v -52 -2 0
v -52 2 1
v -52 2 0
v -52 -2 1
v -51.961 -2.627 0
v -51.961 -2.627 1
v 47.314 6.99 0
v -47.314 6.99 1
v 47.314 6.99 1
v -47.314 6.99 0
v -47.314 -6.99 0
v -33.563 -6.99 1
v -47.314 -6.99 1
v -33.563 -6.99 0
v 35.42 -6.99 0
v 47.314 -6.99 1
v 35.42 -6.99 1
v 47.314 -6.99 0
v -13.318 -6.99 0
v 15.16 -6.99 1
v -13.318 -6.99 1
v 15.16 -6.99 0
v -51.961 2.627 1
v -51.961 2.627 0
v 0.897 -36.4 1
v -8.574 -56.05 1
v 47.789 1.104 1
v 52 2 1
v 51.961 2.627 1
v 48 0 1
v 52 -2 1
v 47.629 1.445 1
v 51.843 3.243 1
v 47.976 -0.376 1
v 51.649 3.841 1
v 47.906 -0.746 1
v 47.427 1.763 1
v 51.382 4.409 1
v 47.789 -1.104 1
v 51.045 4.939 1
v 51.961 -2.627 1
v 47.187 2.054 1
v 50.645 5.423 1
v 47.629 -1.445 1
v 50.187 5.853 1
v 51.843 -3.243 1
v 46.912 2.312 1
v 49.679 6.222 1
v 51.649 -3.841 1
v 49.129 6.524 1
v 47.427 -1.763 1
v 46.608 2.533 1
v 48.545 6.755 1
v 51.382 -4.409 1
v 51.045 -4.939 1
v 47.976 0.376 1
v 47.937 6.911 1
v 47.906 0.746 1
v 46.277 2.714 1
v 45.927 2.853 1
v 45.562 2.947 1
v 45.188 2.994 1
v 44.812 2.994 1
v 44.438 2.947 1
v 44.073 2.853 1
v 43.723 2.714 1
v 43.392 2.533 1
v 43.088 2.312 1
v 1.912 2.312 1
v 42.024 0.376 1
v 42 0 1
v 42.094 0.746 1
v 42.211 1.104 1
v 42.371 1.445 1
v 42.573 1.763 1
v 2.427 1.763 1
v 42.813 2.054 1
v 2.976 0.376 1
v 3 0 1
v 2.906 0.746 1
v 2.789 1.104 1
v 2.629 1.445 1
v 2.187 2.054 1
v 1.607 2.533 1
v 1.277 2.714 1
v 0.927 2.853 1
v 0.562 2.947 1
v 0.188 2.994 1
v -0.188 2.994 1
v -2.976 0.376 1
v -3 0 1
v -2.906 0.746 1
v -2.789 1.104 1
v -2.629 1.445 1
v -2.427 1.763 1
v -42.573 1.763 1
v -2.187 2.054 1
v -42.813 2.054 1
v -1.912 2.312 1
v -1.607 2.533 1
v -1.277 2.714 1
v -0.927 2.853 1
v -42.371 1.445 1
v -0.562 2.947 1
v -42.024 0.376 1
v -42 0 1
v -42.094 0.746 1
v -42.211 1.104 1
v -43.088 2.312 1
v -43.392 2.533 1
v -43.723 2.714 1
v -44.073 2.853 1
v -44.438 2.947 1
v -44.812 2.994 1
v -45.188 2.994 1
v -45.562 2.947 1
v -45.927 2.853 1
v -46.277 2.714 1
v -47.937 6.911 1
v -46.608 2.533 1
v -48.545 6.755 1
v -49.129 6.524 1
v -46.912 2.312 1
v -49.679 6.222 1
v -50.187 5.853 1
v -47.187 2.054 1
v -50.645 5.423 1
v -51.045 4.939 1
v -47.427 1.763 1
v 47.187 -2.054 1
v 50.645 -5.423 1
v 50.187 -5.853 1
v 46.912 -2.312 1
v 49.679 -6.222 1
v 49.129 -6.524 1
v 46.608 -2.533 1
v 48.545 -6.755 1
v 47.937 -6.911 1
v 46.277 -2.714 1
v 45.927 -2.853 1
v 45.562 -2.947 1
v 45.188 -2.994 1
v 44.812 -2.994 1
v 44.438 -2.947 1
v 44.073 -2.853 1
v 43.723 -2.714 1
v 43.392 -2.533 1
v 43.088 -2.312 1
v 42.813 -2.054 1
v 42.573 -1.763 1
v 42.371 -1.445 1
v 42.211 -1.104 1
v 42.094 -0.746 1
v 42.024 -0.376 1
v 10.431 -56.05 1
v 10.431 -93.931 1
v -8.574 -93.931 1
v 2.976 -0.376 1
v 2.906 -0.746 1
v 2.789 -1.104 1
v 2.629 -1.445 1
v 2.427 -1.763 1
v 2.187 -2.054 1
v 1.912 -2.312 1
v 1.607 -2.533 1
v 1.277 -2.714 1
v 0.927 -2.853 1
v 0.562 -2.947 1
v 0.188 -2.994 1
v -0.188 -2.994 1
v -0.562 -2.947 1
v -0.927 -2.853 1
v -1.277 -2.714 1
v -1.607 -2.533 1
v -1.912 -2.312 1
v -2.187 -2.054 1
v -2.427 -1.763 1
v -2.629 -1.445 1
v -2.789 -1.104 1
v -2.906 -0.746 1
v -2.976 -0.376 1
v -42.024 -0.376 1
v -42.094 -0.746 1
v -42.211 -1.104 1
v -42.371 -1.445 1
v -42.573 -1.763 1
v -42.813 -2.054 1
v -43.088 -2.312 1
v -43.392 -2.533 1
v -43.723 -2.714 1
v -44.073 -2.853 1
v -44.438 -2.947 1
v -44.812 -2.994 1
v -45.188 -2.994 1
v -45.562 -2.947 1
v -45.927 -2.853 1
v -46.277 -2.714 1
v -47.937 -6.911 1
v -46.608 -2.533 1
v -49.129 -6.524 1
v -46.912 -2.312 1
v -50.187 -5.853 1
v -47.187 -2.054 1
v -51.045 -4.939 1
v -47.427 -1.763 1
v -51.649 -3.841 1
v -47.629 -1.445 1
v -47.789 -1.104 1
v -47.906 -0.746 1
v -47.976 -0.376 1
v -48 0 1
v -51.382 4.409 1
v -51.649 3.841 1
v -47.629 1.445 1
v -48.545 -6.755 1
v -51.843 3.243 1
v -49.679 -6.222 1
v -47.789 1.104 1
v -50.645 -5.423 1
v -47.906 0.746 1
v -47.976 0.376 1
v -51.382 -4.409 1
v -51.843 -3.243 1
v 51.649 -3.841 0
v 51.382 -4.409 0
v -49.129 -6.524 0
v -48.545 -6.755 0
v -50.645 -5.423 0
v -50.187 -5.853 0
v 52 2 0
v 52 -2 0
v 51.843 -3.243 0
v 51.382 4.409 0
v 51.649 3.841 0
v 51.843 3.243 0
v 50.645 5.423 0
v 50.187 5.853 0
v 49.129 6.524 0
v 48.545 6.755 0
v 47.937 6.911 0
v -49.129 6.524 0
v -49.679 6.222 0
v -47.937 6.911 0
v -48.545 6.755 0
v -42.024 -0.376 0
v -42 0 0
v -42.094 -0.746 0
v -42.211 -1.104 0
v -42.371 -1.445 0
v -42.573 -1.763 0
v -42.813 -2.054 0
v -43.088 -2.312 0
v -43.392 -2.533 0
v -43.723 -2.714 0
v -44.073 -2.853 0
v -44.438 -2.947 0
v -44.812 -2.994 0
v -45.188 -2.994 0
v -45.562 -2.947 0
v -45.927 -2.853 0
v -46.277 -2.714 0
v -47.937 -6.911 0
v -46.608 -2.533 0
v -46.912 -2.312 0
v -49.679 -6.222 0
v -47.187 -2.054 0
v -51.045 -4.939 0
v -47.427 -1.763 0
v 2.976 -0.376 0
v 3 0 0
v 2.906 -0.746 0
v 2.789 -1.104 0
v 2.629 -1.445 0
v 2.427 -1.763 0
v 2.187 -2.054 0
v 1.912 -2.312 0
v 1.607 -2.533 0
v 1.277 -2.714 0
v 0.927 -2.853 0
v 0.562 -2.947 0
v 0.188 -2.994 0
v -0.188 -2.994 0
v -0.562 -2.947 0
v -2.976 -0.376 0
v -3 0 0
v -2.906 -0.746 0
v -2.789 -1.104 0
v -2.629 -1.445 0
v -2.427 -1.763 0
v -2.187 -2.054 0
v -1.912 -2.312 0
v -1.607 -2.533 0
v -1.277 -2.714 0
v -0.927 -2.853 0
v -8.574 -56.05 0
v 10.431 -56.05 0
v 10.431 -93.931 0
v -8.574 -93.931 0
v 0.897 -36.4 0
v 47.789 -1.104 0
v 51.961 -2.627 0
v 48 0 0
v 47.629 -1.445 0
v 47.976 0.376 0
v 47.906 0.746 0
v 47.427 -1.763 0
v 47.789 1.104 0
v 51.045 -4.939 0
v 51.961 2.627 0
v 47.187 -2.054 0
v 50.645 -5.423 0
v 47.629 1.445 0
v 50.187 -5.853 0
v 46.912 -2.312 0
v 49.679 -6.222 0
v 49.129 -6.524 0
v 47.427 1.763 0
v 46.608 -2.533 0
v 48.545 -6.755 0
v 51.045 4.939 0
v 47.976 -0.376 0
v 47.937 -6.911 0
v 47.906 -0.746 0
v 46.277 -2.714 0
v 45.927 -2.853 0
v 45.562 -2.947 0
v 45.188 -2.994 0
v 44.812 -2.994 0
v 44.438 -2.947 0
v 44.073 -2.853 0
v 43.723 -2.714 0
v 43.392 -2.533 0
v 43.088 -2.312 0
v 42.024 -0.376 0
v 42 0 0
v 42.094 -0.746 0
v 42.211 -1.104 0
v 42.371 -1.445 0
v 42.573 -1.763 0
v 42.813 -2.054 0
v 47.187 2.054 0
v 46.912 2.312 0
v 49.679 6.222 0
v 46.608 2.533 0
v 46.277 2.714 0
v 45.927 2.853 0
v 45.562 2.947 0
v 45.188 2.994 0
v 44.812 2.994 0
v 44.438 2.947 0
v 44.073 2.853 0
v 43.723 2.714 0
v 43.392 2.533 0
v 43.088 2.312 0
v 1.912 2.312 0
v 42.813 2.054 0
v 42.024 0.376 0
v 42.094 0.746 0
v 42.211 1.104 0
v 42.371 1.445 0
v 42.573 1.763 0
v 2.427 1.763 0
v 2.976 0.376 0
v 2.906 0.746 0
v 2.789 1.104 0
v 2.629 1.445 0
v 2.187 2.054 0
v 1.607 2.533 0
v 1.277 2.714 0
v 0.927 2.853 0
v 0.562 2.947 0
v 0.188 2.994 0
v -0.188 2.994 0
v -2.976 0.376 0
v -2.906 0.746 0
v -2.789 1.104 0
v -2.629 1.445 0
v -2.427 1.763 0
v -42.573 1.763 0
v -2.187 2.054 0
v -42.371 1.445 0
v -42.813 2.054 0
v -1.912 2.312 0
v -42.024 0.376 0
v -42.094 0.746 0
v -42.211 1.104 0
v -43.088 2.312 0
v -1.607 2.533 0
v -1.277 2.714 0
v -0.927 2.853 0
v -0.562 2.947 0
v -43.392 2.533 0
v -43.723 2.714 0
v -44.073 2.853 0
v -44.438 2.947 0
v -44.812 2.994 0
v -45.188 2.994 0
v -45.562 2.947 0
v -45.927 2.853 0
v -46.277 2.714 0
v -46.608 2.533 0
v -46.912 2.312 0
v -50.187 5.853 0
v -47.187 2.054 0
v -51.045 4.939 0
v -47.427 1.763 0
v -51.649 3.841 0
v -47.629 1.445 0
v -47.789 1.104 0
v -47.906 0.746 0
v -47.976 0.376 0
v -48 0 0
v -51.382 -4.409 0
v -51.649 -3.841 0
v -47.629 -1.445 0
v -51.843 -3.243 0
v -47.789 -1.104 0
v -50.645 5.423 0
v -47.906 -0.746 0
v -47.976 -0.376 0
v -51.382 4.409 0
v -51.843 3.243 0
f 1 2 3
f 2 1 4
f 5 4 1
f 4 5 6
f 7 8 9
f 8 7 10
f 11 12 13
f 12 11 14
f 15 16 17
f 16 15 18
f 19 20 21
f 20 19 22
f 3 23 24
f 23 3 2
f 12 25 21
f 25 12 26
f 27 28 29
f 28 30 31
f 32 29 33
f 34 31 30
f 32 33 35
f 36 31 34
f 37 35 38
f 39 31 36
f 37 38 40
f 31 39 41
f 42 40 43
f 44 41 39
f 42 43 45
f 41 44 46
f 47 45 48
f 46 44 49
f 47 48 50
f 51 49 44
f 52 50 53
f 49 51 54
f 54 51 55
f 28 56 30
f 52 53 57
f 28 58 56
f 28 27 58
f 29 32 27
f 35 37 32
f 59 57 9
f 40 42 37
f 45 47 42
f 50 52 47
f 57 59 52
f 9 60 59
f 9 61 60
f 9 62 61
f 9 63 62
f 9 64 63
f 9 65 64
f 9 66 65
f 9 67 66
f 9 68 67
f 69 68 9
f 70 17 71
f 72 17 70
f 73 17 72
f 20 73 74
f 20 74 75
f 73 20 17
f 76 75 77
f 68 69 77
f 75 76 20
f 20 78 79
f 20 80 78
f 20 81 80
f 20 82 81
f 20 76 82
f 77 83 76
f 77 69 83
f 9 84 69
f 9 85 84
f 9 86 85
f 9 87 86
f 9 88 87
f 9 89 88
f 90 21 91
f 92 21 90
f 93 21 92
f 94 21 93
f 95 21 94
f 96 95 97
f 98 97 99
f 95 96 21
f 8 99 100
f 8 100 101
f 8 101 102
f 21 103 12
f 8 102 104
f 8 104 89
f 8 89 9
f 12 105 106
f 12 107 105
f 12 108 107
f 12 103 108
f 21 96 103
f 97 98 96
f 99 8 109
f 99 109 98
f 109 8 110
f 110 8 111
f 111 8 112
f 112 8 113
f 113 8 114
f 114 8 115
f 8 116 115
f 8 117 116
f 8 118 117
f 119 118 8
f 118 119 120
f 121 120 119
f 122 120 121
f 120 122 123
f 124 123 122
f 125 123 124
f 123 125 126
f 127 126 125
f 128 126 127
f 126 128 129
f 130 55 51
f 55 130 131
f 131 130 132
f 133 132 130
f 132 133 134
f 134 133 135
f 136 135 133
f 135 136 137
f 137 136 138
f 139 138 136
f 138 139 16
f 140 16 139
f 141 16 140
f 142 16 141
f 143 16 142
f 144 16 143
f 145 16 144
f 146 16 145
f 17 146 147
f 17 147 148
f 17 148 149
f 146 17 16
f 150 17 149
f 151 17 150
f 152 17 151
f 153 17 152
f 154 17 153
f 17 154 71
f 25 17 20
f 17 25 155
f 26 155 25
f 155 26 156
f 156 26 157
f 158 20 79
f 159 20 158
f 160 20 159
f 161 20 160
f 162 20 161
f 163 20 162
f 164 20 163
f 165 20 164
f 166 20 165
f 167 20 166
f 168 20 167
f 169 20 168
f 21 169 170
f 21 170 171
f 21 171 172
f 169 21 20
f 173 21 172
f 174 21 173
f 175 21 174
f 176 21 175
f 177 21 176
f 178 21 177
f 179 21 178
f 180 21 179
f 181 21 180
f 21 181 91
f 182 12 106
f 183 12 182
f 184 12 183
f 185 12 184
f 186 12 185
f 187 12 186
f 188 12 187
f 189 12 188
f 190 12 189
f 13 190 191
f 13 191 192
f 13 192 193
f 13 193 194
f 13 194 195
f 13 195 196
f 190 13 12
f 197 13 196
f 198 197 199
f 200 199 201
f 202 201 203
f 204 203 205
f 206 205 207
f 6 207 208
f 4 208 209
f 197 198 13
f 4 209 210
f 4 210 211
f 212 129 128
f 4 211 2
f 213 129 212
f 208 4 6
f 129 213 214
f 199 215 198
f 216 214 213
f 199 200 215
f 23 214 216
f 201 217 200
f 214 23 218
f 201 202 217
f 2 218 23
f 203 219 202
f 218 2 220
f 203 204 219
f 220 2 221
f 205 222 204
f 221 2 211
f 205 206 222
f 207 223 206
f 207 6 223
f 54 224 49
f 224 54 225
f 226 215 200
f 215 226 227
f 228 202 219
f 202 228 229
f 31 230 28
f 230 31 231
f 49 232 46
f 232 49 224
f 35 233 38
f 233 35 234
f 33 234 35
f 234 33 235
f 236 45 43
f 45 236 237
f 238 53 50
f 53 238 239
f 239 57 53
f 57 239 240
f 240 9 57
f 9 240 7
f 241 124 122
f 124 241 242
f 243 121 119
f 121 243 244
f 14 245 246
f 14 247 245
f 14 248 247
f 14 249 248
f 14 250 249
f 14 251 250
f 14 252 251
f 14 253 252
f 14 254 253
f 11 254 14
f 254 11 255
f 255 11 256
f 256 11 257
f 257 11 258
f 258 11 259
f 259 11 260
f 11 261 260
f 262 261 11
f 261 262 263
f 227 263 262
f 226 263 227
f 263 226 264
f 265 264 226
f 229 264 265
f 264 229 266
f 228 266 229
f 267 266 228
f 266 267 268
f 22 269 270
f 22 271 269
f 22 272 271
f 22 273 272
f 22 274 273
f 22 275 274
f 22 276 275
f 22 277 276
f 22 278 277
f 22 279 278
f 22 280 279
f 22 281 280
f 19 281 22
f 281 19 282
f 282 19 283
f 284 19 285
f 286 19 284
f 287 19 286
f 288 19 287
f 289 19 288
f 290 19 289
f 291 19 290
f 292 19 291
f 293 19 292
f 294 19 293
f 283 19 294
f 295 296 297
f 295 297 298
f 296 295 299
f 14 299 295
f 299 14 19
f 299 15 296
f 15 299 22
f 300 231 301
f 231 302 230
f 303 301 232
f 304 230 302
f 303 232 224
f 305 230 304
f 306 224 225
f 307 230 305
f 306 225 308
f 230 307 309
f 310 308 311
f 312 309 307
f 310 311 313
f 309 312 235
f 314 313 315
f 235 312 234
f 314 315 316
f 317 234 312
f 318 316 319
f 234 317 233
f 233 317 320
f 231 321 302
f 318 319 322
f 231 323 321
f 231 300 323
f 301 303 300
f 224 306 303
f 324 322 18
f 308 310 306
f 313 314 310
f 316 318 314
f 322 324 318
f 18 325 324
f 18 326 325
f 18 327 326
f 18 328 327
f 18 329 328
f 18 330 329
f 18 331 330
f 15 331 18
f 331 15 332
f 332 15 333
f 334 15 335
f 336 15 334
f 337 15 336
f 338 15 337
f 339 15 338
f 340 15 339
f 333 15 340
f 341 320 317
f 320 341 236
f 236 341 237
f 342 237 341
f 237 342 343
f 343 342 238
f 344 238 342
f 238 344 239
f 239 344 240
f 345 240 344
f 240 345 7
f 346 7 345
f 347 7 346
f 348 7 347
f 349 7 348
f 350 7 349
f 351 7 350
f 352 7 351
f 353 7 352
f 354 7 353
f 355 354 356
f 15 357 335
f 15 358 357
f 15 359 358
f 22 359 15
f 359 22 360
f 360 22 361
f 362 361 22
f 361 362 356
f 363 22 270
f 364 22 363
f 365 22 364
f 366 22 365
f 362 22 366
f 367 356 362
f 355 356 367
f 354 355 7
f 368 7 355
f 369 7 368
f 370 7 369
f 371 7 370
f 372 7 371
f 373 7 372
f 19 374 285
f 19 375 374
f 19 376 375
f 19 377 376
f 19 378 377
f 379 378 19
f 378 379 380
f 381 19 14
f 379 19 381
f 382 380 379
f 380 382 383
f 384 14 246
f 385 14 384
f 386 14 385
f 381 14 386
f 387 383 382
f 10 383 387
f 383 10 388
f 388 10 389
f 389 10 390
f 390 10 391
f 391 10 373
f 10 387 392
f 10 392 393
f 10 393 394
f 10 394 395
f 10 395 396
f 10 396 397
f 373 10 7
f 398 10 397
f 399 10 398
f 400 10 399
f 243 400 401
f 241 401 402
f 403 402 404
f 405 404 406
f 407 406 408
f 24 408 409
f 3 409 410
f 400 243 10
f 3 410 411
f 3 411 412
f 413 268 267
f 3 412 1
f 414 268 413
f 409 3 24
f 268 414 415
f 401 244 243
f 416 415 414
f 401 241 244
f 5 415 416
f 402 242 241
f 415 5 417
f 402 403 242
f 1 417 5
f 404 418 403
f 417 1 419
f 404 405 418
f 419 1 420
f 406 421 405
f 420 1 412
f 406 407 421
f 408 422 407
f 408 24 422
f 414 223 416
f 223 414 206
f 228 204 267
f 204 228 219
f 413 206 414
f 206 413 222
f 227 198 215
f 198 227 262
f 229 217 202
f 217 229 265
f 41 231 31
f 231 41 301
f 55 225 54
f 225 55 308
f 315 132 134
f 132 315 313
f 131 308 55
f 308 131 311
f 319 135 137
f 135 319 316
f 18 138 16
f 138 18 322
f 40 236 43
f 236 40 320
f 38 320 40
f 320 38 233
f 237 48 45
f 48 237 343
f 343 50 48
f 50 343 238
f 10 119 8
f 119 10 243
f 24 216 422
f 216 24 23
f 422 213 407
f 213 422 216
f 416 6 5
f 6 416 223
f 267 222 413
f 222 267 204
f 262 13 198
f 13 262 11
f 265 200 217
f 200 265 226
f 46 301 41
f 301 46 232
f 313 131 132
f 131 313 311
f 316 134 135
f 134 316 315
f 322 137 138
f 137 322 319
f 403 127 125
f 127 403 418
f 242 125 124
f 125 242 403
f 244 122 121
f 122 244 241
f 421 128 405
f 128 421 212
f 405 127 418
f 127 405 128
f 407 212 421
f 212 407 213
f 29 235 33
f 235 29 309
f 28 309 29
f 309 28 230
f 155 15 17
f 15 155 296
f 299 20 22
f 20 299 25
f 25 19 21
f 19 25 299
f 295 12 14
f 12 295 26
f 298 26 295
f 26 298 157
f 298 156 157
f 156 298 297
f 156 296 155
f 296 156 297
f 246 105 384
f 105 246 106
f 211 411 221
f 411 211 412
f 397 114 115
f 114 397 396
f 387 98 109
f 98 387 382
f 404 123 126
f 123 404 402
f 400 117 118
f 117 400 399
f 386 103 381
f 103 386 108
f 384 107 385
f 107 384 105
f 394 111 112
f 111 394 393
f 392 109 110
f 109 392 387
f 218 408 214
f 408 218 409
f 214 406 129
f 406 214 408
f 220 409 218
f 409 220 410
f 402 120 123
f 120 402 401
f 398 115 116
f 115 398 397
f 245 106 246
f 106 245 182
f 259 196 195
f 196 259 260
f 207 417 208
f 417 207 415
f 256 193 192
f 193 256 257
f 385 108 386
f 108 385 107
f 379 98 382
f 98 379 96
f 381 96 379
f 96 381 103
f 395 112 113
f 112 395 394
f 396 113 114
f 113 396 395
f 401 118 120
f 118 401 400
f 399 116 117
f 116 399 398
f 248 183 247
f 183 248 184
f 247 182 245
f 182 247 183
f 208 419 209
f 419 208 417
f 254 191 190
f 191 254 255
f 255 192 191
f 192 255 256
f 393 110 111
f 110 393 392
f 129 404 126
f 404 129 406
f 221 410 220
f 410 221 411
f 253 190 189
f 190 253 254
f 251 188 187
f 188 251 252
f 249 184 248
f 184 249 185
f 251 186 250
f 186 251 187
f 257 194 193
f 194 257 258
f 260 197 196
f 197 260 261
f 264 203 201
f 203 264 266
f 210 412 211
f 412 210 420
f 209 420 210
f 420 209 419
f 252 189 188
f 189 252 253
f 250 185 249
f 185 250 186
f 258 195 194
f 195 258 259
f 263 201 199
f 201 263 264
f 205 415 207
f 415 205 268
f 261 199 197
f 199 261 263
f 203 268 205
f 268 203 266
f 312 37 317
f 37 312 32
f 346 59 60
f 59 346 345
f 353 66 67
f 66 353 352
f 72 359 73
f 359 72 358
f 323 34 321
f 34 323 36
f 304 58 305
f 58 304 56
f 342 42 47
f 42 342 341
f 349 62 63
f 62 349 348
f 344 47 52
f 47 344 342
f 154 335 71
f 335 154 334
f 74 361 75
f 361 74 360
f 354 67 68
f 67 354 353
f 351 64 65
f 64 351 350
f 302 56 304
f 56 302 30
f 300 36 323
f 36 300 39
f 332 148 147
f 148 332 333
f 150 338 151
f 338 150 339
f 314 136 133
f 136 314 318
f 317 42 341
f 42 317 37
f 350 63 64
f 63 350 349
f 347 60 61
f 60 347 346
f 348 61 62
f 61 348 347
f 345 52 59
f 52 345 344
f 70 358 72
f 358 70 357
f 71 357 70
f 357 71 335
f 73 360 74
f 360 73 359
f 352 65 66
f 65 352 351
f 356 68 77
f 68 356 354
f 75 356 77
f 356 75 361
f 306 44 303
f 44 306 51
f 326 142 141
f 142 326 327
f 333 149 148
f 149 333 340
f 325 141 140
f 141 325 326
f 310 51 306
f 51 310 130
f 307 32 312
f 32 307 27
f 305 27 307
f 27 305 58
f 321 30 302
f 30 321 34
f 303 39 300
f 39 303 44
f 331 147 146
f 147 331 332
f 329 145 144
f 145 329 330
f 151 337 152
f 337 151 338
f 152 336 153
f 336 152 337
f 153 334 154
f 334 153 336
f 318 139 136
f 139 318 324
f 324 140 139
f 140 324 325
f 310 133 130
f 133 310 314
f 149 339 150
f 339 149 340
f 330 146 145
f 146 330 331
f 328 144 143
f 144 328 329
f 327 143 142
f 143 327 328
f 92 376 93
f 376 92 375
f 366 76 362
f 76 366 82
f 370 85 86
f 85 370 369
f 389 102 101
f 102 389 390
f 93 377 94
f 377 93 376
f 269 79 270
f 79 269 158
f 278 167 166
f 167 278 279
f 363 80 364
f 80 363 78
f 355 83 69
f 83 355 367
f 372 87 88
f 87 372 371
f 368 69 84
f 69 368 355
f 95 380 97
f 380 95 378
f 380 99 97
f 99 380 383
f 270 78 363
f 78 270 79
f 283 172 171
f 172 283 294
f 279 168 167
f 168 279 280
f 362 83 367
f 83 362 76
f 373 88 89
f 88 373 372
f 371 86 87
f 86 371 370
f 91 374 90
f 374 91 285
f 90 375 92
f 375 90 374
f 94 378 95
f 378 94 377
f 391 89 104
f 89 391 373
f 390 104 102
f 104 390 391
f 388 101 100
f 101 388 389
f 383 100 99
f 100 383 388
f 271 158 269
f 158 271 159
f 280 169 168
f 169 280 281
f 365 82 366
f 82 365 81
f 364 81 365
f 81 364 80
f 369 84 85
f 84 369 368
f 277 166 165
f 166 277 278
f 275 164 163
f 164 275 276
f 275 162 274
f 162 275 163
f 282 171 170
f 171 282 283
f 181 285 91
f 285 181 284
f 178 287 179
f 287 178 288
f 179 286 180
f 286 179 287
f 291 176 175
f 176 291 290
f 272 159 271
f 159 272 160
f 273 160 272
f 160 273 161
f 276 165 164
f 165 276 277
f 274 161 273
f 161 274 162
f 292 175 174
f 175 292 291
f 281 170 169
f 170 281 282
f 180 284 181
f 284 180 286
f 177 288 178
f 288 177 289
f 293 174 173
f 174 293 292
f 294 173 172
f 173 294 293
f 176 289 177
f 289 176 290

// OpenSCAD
$fn = 50;


difference() {
	union() {
		translate(v = [0, 0, 0]) {
			rotate(a = [0, 0, 0]) {
				hull() {
					translate(v = [-47.0000000000, 2.0000000000, 0]) {
						rotate(a = [0, 0, 0]) {
							translate(v = [0, 0, 0]) {
								rotate(a = [0, 0, 0]) {
									cylinder(h = 1, r = 5);
								}
							}
						}
					}
					translate(v = [47.0000000000, 2.0000000000, 0]) {
						rotate(a = [0, 0, 0]) {
							translate(v = [0, 0, 0]) {
								rotate(a = [0, 0, 0]) {
									cylinder(h = 1, r = 5);
								}
							}
						}
					}
					translate(v = [-47.0000000000, -2.0000000000, 0]) {
						rotate(a = [0, 0, 0]) {
							translate(v = [0, 0, 0]) {
								rotate(a = [0, 0, 0]) {
									cylinder(h = 1, r = 5);
								}
							}
						}
					}
					translate(v = [47.0000000000, -2.0000000000, 0]) {
						rotate(a = [0, 0, 0]) {
							translate(v = [0, 0, 0]) {
								rotate(a = [0, 0, 0]) {
									cylinder(h = 1, r = 5);
								}
							}
						}
					}
				}
			}
		}
		translate(v = [0, 0, 0]) {
			rotate(a = [0, 0, 0]) {
				linear_extrude(height = 1) {
					text(font = "DejaVu Sans Mono:style=Bold", halign = "center", size = 95.0000000000, text = "Y", valign = "top");
				}
			}
		}
	}
	union() {
		translate(v = [-45.0000000000, 0.0000000000, -125.0000000000]) {
			rotate(a = [0, 0, 0]) {
				cylinder(h = 250, r = 3.0000000000);
			}
		}
		translate(v = [45.0000000000, 0.0000000000, -125.0000000000]) {
			rotate(a = [0, 0, 0]) {
				cylinder(h = 250, r = 3.0000000000);
			}
		}
		translate(v = [45.0000000000, 0.0000000000, -125.0000000000]) {
			rotate(a = [0, 0, 0]) {
				cylinder(h = 250, r = 3.0000000000);
			}
		}
		translate(v = [0, 0, -125.0000000000]) {
			rotate(a = [0, 0, 0]) {
				cylinder(h = 250, r = 3.0000000000);
			}
		}
	}
}
